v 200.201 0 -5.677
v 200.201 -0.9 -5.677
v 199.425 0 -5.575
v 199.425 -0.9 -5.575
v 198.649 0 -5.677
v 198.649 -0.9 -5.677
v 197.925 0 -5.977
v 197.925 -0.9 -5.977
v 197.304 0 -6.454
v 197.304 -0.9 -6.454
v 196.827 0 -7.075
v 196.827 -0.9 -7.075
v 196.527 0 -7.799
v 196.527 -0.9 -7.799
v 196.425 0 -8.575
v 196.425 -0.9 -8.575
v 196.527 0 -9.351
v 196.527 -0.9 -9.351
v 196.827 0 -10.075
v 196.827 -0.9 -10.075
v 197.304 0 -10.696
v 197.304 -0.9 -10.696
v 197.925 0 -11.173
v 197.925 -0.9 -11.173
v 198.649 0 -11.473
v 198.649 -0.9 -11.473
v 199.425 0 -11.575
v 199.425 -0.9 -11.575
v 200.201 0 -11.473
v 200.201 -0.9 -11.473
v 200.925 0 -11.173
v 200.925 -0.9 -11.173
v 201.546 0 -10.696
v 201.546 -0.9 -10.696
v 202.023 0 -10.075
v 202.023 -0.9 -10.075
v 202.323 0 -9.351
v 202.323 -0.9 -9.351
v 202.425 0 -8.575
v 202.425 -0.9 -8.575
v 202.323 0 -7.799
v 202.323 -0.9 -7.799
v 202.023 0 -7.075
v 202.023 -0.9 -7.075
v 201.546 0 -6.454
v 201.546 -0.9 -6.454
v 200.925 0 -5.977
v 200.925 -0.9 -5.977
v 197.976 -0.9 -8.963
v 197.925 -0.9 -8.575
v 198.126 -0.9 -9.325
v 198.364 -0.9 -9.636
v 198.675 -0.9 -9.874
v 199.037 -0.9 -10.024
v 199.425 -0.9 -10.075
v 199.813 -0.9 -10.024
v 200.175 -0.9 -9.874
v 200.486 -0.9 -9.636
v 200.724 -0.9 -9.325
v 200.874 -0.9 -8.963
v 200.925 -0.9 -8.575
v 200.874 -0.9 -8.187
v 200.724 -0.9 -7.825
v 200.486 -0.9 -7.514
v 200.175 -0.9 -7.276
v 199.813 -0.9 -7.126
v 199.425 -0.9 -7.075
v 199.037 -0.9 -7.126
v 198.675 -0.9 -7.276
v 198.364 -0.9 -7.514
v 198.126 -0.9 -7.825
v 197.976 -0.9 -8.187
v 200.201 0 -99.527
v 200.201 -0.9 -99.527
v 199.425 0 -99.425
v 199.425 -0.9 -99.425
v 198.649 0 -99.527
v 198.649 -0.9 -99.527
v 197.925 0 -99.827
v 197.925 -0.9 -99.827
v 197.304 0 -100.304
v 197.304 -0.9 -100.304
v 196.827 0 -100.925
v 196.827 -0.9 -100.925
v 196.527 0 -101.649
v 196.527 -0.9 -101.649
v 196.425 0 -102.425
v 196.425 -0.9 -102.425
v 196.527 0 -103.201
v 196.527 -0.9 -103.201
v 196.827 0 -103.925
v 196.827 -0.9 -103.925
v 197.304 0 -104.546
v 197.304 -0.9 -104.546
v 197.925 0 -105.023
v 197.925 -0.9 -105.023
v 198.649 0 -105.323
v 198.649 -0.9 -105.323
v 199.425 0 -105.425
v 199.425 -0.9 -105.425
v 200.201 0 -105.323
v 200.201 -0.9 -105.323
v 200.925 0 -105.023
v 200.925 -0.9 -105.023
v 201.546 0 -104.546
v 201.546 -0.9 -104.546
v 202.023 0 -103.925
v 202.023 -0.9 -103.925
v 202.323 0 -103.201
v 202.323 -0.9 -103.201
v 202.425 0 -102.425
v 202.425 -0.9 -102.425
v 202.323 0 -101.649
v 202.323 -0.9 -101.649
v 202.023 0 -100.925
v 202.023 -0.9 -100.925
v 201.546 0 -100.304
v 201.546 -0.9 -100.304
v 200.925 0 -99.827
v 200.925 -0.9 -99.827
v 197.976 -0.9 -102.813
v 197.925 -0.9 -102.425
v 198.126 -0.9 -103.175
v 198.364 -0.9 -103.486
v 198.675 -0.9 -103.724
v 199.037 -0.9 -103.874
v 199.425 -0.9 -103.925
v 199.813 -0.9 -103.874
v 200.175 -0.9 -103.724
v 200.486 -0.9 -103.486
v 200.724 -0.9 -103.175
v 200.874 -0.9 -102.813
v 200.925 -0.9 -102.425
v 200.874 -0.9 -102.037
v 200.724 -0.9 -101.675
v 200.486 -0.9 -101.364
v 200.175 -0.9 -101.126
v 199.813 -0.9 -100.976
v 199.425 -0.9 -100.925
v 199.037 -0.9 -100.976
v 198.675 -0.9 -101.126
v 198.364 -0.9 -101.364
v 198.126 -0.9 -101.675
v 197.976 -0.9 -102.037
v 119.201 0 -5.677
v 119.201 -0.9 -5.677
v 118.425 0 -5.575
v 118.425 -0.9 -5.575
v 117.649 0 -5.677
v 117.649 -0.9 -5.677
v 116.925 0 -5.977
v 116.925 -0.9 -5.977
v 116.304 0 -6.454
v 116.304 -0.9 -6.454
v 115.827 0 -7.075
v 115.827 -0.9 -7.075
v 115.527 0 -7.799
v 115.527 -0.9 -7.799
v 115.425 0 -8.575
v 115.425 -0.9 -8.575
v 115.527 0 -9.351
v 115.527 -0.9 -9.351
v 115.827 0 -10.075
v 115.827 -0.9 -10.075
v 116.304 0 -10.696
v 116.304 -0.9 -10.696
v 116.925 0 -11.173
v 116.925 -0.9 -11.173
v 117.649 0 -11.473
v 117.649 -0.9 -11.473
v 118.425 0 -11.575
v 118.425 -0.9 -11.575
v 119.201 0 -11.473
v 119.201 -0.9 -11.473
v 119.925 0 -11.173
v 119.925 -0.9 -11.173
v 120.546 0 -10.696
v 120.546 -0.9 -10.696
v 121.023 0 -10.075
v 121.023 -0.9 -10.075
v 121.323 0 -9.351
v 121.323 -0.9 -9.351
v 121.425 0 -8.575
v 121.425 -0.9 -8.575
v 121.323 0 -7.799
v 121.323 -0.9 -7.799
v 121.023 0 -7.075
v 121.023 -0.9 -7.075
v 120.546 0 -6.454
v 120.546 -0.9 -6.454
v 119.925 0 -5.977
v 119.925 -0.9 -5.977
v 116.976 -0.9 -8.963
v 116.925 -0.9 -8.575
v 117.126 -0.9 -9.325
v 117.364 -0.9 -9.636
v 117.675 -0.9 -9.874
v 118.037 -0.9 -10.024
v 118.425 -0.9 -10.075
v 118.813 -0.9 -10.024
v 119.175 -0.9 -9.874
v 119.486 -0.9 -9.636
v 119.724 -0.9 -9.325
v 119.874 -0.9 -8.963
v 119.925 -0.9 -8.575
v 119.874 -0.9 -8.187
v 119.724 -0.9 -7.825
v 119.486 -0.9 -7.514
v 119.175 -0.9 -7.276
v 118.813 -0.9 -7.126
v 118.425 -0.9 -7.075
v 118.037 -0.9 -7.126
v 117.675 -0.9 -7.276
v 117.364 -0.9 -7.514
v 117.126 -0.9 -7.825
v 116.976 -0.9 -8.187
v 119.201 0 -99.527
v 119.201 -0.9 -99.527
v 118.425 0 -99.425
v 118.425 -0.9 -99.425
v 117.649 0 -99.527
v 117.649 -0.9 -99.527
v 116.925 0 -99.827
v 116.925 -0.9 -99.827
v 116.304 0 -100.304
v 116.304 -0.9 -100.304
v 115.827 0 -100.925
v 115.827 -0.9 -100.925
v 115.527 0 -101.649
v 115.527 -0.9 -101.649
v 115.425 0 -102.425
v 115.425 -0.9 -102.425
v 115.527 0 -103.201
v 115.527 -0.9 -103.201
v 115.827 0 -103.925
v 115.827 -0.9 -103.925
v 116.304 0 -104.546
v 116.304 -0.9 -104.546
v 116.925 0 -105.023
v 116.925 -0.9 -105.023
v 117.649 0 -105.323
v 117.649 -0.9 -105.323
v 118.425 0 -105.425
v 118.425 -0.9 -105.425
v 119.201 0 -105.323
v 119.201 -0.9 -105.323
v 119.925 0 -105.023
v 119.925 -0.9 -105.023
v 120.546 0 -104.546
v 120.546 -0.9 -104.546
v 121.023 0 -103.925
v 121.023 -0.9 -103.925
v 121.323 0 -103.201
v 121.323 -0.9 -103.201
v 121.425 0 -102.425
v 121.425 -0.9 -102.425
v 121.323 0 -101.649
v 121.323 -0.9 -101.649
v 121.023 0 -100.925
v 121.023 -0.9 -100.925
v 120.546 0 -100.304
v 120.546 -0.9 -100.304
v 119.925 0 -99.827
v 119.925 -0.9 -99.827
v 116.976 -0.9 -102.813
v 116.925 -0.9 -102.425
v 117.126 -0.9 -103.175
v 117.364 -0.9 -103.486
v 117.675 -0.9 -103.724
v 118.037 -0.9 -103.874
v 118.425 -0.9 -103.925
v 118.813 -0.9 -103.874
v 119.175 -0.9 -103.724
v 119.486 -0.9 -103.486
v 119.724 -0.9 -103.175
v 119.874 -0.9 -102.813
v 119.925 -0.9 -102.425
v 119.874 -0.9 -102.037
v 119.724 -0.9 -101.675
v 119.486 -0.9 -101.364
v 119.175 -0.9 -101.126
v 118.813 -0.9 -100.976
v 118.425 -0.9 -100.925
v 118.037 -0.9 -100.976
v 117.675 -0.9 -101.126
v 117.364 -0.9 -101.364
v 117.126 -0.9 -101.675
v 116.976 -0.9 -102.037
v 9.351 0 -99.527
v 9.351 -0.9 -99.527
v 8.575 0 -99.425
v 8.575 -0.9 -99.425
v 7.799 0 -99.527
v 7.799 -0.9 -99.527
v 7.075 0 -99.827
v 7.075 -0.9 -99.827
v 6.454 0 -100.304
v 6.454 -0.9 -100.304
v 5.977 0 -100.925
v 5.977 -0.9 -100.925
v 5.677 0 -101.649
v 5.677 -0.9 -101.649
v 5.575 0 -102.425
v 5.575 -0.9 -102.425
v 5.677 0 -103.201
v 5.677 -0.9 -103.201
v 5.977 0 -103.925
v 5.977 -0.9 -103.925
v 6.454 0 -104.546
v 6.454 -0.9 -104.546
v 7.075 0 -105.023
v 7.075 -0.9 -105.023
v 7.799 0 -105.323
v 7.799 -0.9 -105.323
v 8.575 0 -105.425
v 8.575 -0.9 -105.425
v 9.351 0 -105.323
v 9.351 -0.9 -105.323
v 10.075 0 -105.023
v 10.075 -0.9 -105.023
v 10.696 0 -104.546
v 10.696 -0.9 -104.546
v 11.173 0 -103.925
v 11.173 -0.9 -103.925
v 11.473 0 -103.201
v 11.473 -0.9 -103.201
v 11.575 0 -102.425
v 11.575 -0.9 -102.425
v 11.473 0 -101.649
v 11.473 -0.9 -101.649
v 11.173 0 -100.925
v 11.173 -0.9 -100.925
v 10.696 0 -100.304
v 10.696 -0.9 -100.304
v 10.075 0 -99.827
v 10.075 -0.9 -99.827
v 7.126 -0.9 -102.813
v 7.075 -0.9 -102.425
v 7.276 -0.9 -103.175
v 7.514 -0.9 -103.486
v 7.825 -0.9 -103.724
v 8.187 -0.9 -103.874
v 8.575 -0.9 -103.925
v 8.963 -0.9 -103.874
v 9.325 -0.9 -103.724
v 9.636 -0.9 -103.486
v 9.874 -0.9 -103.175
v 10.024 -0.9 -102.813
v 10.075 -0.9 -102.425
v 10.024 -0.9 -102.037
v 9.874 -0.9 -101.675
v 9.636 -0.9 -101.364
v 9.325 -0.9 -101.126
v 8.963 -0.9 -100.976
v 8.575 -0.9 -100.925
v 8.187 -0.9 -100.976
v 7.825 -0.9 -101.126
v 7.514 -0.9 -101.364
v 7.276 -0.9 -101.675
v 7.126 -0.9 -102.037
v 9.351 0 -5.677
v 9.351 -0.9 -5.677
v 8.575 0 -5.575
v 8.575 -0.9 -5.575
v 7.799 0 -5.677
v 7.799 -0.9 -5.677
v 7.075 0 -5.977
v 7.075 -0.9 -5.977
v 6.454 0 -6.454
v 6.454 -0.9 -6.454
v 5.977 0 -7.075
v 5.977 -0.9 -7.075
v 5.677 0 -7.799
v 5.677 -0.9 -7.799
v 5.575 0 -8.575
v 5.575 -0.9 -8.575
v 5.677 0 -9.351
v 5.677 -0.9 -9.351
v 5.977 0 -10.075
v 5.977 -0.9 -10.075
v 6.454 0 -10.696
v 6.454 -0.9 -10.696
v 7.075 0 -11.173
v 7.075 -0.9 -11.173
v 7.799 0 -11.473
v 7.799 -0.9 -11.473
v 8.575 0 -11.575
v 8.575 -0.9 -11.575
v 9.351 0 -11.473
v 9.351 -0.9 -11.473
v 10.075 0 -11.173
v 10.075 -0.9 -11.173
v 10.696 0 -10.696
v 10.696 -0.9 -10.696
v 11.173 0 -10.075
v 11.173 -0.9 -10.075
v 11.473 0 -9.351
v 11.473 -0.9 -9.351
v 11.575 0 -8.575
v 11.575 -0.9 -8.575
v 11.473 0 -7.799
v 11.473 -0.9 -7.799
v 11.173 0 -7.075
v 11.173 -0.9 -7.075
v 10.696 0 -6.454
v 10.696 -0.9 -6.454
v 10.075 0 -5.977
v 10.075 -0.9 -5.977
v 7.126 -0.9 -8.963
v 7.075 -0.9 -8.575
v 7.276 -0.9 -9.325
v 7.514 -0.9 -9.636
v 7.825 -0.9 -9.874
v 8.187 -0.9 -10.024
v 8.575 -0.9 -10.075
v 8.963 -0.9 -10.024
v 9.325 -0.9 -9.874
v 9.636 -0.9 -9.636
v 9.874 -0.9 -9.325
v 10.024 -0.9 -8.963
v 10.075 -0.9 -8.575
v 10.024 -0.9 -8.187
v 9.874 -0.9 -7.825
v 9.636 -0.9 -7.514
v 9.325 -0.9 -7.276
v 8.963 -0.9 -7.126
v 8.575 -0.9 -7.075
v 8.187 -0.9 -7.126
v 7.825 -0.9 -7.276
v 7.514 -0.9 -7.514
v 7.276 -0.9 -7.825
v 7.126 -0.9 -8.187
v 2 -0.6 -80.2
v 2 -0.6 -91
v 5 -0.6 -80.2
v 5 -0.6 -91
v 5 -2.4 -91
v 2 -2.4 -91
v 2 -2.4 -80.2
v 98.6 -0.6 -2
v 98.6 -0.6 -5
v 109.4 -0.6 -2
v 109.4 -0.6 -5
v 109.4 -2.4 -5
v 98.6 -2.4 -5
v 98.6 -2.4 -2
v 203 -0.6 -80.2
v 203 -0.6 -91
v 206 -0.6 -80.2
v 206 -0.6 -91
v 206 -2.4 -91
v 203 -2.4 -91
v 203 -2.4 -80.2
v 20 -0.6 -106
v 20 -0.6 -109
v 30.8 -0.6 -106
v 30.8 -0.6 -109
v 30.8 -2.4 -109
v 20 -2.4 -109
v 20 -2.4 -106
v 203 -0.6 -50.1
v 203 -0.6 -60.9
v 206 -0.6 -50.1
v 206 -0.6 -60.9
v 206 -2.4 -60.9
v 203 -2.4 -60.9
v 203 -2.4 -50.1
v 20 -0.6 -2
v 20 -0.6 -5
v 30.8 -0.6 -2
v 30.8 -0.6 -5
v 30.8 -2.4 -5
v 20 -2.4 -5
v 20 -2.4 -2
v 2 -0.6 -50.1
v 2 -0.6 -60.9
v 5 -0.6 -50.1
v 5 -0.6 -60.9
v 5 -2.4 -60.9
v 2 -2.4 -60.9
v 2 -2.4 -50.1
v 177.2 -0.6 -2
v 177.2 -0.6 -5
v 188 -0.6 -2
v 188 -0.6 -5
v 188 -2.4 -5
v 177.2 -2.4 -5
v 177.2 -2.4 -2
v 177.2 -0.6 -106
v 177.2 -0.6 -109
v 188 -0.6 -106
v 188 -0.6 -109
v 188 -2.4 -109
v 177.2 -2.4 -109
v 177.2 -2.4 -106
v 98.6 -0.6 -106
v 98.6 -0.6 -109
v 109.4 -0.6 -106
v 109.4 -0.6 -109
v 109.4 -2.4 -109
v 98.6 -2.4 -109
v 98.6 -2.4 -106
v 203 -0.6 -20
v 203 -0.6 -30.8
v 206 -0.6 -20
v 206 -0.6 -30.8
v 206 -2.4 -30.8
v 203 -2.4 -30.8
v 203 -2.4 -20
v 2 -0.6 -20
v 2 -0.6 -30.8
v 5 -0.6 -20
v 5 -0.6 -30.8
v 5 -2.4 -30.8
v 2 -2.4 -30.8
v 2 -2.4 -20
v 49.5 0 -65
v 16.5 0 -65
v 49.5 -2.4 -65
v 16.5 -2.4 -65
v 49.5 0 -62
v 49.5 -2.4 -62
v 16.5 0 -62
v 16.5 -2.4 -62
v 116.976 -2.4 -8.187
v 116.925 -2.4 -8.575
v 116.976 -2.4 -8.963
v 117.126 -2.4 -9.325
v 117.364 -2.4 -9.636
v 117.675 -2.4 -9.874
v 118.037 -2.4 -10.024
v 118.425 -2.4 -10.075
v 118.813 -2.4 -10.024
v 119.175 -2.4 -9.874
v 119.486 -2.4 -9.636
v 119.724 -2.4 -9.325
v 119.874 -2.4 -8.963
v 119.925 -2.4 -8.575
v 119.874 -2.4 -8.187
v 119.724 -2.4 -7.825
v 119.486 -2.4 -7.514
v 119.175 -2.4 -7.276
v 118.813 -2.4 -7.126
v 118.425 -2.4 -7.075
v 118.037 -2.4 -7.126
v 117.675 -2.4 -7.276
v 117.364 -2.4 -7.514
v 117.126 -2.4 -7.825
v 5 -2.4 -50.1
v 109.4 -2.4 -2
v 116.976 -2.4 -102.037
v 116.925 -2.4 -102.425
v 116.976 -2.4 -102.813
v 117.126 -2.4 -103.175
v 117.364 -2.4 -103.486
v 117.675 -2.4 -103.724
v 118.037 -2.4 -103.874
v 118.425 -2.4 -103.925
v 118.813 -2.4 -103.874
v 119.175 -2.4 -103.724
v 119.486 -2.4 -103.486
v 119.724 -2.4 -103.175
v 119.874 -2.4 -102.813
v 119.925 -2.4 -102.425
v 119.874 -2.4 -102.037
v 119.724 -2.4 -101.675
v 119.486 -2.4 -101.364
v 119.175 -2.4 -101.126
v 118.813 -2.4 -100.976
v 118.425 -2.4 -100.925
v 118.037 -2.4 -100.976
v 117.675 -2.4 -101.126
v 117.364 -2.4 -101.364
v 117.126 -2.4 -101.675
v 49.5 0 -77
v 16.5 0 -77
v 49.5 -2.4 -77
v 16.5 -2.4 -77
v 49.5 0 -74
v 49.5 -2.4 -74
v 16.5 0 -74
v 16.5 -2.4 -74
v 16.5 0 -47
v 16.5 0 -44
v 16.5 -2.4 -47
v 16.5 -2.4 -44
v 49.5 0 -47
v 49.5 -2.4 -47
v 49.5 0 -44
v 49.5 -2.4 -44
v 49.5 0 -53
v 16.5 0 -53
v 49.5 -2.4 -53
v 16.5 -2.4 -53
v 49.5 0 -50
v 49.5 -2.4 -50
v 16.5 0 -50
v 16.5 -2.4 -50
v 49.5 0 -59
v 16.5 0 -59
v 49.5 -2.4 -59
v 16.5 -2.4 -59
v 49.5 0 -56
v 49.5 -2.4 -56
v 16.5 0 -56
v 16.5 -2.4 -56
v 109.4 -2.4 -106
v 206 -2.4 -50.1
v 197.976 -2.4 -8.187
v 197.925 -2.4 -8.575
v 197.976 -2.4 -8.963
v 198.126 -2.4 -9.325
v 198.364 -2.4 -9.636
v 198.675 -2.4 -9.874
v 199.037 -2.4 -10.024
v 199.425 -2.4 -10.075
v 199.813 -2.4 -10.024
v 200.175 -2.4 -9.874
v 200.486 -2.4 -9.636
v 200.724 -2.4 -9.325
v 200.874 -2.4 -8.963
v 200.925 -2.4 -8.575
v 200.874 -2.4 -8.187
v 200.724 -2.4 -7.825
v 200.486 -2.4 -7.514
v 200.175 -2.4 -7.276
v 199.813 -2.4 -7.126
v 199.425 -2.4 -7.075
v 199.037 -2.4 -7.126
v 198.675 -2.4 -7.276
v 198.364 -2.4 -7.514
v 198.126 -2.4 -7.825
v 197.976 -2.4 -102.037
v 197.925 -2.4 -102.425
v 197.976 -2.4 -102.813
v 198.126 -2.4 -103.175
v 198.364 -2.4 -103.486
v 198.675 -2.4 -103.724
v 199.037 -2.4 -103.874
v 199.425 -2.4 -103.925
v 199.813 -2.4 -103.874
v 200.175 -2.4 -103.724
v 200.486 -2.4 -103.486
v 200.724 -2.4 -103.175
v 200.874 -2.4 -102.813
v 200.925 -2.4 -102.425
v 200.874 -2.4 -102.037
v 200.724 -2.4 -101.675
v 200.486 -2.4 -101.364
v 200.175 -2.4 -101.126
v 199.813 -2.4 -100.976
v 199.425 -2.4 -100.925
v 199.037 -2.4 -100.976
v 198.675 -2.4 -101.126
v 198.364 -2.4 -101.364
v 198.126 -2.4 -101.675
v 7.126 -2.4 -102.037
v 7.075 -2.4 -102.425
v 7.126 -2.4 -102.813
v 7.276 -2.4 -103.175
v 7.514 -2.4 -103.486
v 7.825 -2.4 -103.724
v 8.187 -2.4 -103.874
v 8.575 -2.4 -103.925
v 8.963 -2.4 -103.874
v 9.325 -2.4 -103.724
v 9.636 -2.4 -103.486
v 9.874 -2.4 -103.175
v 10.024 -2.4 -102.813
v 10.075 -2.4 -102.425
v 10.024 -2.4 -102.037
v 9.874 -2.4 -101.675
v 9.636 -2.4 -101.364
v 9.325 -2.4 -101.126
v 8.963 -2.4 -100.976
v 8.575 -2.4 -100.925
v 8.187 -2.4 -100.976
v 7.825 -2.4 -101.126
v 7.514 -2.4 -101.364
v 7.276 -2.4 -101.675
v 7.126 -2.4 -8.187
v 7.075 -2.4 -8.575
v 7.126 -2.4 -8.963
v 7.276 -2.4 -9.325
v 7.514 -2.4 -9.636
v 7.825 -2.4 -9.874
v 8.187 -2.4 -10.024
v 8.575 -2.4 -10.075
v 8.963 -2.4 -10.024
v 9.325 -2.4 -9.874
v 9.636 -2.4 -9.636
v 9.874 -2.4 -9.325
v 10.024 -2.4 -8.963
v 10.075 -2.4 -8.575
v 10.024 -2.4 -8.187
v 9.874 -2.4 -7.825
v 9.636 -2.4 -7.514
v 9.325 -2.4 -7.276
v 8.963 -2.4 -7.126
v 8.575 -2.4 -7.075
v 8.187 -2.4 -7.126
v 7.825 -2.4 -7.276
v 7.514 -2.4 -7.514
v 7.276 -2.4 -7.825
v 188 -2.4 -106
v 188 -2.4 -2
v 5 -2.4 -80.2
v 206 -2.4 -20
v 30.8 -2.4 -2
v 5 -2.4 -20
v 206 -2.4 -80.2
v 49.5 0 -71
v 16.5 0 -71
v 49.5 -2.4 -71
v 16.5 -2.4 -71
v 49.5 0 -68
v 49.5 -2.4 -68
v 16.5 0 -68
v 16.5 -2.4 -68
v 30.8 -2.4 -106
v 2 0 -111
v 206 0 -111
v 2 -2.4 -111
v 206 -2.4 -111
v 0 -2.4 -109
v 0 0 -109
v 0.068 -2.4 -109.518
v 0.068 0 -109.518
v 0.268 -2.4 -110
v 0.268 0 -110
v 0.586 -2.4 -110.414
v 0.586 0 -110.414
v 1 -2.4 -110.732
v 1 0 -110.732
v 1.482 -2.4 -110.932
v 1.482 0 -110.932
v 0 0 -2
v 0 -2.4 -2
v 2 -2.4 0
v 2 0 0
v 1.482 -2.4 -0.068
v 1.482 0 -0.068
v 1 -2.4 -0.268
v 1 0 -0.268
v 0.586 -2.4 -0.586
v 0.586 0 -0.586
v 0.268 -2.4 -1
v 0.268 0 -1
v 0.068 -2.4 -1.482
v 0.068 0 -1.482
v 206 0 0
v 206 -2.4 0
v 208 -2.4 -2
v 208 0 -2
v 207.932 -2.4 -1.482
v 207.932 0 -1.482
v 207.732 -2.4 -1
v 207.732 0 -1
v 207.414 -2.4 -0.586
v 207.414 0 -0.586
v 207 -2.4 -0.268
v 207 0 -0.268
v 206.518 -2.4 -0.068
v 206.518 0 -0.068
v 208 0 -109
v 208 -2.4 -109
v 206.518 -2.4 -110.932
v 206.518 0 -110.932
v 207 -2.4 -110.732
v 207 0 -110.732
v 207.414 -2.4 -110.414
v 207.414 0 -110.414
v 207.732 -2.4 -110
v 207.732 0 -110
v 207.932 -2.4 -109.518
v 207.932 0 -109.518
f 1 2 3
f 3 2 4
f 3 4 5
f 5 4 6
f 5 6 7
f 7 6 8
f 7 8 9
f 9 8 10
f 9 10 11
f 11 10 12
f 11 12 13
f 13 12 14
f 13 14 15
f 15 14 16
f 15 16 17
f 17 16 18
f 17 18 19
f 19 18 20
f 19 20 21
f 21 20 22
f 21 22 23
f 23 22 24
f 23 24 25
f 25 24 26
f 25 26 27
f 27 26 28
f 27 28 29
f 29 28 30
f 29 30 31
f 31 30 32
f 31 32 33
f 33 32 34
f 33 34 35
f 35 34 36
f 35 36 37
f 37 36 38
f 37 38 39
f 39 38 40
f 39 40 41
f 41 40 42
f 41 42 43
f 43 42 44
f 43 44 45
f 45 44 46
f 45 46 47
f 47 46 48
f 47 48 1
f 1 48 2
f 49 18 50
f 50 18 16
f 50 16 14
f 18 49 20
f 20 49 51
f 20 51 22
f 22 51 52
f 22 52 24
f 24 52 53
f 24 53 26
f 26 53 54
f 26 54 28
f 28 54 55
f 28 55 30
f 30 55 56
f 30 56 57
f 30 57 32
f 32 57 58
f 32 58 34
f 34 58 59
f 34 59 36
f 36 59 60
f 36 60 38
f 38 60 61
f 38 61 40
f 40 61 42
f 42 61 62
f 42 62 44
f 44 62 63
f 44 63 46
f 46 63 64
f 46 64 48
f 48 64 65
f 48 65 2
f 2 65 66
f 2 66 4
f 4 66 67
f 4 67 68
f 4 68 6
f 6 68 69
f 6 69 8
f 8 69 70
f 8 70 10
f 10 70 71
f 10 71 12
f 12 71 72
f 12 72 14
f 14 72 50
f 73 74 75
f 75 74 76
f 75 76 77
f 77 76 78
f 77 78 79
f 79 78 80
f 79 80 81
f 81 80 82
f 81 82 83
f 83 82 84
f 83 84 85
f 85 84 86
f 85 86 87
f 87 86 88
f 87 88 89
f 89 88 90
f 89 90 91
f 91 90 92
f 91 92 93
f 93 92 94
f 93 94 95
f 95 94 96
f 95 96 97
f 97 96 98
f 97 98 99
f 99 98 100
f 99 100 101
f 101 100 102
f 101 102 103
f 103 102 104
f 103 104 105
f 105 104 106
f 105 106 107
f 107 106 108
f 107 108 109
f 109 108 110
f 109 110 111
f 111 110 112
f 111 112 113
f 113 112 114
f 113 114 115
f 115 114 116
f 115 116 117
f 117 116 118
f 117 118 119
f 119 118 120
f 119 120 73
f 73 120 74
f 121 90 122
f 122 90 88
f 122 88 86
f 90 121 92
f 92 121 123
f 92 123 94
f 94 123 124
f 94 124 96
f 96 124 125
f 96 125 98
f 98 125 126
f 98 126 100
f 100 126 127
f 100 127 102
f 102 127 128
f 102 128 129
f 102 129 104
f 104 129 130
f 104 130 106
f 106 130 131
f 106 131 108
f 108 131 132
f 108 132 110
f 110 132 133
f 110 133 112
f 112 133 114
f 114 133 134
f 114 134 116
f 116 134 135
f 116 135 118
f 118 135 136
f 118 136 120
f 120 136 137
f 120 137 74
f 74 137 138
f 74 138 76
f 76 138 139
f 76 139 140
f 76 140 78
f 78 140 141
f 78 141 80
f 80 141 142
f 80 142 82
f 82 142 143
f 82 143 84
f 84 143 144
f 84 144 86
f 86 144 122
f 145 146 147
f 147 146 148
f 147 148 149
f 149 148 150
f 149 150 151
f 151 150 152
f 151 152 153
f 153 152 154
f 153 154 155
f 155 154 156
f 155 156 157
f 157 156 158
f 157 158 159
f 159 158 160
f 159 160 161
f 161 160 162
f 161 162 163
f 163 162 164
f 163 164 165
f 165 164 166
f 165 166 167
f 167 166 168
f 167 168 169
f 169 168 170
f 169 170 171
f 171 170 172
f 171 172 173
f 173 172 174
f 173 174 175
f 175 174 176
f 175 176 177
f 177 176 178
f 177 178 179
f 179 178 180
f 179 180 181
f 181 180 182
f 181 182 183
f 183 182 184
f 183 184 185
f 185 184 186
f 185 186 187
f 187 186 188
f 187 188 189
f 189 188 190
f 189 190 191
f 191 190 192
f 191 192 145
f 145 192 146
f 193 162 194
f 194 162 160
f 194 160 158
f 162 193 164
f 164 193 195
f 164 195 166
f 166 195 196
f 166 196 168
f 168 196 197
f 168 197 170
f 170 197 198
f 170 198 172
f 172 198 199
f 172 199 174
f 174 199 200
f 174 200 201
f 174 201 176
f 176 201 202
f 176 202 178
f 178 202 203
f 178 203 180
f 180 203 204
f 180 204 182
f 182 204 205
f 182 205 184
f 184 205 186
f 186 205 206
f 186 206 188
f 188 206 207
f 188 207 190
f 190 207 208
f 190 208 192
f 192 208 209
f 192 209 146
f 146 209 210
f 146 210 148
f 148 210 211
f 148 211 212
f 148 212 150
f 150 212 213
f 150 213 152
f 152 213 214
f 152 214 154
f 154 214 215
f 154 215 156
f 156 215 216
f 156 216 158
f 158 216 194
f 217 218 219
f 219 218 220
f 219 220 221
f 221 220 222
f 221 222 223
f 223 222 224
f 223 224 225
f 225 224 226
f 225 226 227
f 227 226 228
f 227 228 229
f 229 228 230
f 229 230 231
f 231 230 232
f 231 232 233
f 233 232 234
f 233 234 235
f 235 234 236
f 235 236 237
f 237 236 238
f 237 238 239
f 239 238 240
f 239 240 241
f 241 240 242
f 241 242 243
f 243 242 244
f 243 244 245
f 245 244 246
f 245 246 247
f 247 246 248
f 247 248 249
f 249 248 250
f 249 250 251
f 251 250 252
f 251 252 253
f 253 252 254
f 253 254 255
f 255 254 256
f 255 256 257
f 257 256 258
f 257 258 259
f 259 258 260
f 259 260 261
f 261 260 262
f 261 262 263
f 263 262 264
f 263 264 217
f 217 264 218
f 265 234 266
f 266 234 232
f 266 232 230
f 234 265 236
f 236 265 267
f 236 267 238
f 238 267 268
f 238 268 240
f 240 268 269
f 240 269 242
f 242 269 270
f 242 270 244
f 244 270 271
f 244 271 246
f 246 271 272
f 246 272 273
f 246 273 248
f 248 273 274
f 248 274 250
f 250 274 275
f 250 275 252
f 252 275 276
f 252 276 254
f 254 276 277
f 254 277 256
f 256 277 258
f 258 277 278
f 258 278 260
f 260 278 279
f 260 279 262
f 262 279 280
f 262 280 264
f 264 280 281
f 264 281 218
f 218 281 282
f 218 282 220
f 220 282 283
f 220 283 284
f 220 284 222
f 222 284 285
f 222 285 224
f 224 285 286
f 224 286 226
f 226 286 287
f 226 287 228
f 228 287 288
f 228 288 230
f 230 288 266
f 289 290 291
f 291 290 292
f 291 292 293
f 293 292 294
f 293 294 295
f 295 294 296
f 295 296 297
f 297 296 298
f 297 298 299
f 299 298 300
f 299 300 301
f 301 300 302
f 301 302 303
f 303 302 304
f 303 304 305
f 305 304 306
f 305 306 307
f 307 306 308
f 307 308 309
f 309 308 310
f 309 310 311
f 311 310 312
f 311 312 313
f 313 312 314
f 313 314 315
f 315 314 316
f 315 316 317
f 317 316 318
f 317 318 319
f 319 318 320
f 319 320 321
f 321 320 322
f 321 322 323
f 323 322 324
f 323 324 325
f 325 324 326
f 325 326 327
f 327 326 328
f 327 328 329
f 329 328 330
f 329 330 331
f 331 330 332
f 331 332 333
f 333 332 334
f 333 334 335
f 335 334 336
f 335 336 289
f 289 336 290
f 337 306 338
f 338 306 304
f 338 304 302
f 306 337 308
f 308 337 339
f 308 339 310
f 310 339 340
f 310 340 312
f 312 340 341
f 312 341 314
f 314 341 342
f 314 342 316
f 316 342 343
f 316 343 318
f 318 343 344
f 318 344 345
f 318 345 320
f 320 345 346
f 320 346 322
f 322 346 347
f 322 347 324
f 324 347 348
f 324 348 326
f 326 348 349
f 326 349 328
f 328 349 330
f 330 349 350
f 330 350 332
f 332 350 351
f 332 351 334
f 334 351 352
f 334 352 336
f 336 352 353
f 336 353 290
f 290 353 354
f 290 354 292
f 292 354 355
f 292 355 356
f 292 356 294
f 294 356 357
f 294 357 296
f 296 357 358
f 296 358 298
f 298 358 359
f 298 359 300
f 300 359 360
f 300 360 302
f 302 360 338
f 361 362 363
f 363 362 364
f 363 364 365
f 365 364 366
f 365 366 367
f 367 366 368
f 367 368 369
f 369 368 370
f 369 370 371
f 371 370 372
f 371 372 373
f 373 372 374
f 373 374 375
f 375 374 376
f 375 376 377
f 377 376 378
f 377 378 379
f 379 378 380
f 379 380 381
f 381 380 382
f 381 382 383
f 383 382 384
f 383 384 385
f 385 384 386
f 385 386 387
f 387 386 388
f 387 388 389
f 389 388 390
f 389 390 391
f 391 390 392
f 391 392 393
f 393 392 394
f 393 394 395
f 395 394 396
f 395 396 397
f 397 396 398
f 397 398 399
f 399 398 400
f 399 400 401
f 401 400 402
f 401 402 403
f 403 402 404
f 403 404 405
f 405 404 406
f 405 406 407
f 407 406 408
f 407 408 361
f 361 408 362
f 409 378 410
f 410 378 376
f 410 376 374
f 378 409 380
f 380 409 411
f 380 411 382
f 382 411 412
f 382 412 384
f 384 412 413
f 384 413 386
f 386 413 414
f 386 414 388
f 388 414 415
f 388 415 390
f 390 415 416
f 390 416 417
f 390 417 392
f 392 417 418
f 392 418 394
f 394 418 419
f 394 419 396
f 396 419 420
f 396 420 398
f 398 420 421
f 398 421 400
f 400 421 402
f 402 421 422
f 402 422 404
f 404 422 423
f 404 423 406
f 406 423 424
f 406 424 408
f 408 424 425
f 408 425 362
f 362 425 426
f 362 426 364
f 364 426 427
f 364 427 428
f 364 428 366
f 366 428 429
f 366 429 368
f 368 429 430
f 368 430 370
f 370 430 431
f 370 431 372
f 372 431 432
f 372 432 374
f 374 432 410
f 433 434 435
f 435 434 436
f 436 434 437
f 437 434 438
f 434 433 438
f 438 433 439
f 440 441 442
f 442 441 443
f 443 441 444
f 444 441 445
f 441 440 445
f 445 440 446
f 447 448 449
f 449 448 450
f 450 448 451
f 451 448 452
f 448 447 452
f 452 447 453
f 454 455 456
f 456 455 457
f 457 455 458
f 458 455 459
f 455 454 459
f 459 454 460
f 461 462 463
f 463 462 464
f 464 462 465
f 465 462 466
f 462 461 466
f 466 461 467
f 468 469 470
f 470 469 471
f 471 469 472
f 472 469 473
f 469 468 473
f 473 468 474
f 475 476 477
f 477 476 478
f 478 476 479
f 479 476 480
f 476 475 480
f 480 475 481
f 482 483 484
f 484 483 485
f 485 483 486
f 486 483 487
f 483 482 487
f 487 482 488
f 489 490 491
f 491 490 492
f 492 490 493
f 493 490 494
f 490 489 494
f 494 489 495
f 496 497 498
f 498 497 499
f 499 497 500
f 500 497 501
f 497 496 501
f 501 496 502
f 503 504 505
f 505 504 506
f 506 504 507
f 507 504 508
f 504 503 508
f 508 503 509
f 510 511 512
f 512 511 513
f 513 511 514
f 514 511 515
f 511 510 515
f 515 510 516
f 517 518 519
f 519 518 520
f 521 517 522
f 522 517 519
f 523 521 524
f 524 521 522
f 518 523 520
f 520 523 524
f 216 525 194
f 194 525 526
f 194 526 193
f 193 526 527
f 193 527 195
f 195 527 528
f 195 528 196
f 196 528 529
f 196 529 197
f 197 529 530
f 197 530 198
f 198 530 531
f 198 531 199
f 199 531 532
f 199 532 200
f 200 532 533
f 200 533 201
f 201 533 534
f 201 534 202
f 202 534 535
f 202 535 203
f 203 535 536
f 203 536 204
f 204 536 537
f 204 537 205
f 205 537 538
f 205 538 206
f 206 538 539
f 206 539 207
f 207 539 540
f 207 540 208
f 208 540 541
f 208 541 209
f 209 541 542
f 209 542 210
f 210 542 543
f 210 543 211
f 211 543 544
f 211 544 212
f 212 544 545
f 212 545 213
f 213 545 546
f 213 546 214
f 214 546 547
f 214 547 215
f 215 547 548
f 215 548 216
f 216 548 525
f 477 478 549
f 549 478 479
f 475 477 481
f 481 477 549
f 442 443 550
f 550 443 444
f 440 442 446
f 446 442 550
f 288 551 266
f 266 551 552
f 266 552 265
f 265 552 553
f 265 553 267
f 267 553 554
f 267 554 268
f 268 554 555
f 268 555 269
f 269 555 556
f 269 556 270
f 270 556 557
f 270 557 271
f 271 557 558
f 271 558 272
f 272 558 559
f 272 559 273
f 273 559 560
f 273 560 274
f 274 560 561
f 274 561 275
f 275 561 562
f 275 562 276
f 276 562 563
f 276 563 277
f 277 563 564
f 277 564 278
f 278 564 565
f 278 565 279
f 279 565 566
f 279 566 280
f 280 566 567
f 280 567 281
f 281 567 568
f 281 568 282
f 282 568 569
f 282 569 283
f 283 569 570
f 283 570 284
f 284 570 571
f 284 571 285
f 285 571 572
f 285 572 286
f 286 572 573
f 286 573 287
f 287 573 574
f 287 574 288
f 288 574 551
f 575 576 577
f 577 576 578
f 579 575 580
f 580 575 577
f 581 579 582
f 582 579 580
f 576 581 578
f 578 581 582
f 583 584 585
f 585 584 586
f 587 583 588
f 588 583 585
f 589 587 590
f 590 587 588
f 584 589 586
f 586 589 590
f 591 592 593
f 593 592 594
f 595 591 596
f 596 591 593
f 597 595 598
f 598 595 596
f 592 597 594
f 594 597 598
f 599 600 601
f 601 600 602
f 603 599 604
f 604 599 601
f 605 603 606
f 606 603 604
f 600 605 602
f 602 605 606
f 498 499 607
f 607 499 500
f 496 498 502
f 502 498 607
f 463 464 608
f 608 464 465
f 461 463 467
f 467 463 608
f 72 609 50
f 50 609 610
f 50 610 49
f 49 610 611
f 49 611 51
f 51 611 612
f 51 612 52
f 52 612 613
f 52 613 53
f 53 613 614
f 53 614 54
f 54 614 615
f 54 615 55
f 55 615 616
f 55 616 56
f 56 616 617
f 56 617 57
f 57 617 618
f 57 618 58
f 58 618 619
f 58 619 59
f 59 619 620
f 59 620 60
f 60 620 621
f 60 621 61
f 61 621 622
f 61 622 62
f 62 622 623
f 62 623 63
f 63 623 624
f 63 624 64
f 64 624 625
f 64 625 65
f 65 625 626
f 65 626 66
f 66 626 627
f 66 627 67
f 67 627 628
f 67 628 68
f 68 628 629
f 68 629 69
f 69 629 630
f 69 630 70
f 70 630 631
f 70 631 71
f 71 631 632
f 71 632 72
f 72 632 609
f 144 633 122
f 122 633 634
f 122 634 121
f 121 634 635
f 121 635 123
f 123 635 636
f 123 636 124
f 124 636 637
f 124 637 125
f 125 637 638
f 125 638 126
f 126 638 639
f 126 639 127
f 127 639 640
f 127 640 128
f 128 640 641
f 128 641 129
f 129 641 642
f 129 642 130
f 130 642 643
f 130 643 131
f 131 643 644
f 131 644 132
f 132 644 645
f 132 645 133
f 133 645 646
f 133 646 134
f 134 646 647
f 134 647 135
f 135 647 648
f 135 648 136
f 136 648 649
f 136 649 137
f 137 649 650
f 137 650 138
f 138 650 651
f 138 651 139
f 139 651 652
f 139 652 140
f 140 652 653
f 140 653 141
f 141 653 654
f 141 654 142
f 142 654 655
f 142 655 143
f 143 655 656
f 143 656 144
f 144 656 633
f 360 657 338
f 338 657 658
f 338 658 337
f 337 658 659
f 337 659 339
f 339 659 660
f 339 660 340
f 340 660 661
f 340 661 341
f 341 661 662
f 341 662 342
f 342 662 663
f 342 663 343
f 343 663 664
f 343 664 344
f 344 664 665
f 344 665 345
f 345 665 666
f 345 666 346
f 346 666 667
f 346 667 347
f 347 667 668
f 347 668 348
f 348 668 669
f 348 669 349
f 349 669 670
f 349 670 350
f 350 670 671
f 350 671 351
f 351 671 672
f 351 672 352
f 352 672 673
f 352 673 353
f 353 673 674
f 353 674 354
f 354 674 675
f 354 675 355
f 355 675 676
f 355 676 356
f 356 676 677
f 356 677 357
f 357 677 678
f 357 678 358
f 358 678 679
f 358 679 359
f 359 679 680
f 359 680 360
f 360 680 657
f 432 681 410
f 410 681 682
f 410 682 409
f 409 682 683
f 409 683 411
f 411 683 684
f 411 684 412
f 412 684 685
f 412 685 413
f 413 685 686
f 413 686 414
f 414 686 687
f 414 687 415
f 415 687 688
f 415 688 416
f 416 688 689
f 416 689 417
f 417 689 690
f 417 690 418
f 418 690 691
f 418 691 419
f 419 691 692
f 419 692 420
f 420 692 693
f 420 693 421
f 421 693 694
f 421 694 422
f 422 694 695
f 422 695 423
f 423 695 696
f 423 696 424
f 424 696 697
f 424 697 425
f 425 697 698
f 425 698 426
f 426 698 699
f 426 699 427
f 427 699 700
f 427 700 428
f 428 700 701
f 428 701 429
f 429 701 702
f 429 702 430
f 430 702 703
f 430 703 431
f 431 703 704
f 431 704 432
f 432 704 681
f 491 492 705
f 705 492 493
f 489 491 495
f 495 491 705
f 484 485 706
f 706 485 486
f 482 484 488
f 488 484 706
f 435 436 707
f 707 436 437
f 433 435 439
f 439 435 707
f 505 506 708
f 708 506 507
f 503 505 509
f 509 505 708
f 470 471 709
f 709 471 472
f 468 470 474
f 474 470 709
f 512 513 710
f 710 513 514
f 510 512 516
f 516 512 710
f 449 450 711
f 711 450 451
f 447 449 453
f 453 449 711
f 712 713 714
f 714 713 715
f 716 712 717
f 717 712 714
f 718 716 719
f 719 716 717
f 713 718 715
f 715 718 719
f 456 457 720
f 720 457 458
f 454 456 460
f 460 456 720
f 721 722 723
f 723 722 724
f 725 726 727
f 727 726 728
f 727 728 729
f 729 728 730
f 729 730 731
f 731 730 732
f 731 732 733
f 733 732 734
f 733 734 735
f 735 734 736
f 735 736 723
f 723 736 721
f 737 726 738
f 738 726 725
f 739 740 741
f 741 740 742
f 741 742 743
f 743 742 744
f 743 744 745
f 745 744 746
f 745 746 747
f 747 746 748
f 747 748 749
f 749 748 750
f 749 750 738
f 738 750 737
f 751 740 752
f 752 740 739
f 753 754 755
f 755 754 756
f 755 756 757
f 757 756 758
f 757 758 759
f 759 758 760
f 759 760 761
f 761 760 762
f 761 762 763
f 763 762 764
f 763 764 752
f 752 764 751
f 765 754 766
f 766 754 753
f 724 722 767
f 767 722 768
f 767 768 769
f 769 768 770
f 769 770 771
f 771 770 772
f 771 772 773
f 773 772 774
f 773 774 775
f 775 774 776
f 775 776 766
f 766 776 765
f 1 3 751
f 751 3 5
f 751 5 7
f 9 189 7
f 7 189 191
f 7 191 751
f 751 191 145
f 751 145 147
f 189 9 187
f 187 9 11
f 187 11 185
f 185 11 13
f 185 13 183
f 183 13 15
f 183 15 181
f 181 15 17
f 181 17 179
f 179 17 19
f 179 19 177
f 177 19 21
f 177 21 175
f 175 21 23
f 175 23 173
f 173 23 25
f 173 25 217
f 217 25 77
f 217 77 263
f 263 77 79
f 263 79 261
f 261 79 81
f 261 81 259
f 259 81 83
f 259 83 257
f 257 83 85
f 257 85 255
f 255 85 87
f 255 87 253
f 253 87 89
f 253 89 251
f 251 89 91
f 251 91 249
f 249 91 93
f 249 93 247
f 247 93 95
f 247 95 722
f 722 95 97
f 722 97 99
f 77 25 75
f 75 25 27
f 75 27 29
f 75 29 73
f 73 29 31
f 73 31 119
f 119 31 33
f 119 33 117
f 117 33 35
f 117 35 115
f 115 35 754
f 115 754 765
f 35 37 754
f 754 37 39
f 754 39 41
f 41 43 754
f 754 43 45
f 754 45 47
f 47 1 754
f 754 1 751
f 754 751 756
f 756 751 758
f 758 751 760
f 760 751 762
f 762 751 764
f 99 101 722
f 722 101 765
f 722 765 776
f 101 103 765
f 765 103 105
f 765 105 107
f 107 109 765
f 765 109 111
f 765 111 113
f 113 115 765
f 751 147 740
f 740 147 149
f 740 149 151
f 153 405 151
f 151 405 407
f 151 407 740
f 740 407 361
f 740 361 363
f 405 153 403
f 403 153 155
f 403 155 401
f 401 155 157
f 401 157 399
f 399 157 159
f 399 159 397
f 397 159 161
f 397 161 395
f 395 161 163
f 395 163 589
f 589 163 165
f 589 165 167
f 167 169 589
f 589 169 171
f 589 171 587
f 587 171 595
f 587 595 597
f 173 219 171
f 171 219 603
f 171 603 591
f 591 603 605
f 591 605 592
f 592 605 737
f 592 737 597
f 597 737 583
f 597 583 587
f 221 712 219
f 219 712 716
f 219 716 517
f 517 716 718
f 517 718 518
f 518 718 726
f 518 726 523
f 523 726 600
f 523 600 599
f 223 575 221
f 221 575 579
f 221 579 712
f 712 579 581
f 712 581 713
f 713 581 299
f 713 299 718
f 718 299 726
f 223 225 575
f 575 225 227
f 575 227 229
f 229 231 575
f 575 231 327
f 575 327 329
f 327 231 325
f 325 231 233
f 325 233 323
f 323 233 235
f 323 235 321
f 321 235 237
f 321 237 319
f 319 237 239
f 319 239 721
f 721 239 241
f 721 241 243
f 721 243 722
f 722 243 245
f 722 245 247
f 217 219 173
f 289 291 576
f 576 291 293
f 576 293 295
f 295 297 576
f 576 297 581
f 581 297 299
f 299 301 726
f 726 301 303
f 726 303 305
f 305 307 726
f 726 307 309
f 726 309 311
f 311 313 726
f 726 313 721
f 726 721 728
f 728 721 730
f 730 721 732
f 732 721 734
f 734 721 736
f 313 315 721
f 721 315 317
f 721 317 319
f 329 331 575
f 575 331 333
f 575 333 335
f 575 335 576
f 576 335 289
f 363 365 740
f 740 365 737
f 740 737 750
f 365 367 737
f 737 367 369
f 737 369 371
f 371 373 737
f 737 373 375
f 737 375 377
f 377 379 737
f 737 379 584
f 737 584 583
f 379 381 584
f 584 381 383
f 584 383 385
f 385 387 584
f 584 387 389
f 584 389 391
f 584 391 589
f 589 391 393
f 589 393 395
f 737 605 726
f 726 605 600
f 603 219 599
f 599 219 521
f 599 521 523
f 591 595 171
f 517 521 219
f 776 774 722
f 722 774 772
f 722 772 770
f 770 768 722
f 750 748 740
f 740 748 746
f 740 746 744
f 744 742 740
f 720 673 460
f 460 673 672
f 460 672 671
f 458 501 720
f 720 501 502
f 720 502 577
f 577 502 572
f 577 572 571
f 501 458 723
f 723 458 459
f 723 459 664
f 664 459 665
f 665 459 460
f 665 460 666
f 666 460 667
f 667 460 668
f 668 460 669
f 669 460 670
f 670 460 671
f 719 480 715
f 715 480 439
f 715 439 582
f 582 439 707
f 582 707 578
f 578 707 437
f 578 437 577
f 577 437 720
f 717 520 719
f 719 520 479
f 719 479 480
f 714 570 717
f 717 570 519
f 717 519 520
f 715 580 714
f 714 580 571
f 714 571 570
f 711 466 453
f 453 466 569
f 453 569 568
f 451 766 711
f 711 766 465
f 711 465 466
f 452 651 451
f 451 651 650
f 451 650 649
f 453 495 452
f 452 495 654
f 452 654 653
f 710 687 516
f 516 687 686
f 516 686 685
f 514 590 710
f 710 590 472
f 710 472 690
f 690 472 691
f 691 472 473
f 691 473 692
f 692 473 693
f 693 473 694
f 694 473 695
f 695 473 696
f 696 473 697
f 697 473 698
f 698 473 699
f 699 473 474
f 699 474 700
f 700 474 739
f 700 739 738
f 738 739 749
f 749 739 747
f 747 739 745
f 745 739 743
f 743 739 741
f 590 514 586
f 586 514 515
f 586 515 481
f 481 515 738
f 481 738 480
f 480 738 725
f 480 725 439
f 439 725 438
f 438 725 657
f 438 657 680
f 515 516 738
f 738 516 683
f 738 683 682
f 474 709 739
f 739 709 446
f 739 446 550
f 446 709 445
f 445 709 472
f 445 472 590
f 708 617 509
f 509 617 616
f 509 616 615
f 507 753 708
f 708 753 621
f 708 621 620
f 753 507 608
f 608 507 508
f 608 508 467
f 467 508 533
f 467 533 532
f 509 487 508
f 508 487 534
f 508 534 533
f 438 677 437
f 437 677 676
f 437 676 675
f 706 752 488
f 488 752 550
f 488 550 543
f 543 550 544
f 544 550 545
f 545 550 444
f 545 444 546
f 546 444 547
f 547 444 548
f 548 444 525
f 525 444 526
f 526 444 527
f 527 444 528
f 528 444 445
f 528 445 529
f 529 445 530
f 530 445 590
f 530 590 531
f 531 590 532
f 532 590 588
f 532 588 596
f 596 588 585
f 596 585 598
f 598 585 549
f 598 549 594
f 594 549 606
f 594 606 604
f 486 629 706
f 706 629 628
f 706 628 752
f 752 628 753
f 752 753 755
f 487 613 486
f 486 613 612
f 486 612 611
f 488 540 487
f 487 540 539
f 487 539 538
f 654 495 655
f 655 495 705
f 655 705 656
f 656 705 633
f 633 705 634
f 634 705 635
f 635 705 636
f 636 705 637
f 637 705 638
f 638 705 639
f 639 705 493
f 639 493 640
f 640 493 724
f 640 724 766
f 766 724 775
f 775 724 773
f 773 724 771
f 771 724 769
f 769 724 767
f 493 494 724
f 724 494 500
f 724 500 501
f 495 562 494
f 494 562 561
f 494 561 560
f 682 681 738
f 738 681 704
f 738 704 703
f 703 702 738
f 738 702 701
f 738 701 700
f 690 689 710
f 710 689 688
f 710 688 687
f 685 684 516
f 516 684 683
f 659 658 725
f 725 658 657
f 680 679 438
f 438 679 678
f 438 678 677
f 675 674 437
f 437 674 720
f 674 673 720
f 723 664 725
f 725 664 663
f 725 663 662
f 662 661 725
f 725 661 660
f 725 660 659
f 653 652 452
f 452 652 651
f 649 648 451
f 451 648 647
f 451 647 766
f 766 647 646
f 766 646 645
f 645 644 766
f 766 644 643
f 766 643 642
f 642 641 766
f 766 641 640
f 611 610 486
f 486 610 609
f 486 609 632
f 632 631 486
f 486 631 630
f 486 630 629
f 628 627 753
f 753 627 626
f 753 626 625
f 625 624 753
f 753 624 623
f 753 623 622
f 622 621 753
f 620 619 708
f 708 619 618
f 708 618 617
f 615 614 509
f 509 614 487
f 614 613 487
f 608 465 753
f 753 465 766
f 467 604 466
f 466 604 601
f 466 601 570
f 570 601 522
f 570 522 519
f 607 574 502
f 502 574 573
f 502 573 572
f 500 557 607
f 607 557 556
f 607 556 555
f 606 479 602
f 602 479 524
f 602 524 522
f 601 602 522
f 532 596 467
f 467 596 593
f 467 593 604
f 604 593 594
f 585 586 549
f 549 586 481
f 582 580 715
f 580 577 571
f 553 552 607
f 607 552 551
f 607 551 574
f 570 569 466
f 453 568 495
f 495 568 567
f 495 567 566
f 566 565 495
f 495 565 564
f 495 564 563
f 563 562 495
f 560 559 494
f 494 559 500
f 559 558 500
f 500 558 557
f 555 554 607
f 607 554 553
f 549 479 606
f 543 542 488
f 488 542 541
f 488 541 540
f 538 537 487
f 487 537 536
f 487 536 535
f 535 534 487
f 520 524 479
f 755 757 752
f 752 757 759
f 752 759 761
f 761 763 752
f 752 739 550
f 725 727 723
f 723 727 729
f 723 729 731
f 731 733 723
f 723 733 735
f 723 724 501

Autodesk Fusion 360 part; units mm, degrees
sketch "Skizze1" plane through (0, 0, 0) normal (0, 1, 0) x (1, 0, 0)
  line L0 (2, 0) -> (206, 0)
  line L1 (208, 2) -> (208, 109)
  line L2 (206, 111) -> (2, 111)
  line L3 (0, 109) -> (0, 2)
  circle A0 centre (8.575, 8.575) radius 1.5
  circle A1 centre (8.575, 102.425) radius 1.5
  circle A2 centre (199.425, 102.425) radius 1.5
  circle A3 centre (199.425, 8.575) radius 1.5
  line L4 (166.2, 106) -> (162.8, 106)
  line L5 (192, 106) -> (195.4, 106)
  line L6 (195.4, 89) -> (192, 89)
  line L7 (192, 68) -> (192, 76.4)
  line L8 (192, 76.4) -> (192, 71.4)
  line L9 (16.5, 77) -> (49.5, 77)
  line L10 (49.5, 77) -> (49.5, 44)
  line L11 (49.5, 44) -> (16.5, 44)
  line L12 (16.5, 44) -> (16.5, 77)
  line L13 (16.5, 77) -> (49.5, 77)
  line L14 (49.5, 77) -> (49.5, 74)
  line L15 (49.5, 74) -> (16.5, 74)
  line L16 (16.5, 74) -> (16.5, 77)
  line L17 (16.5, 74) -> (49.5, 74)
  line L18 (49.5, 74) -> (49.5, 71)
  line L19 (49.5, 71) -> (16.5, 71)
  line L20 (16.5, 71) -> (16.5, 74)
  line L21 (16.5, 71) -> (49.5, 71)
  line L22 (49.5, 71) -> (49.5, 68)
  line L23 (49.5, 68) -> (16.5, 68)
  line L24 (16.5, 68) -> (16.5, 71)
  line L25 (16.5, 68) -> (49.5, 68)
  line L26 (49.5, 68) -> (49.5, 65)
  line L27 (49.5, 65) -> (16.5, 65)
  line L28 (16.5, 65) -> (16.5, 68)
  line L29 (16.5, 65) -> (49.5, 65)
  line L30 (49.5, 65) -> (49.5, 62)
  line L31 (49.5, 62) -> (16.5, 62)
  line L32 (16.5, 62) -> (16.5, 65)
  line L33 (16.5, 62) -> (49.5, 62)
  line L34 (49.5, 62) -> (49.5, 59)
  line L35 (49.5, 59) -> (16.5, 59)
  line L36 (16.5, 59) -> (16.5, 62)
  line L37 (16.5, 59) -> (49.5, 59)
  line L38 (49.5, 59) -> (49.5, 56)
  line L39 (49.5, 56) -> (16.5, 56)
  line L40 (16.5, 56) -> (16.5, 59)
  line L41 (16.5, 56) -> (49.5, 56)
  line L42 (49.5, 56) -> (49.5, 53)
  line L43 (49.5, 53) -> (16.5, 53)
  line L44 (16.5, 53) -> (16.5, 56)
  line L45 (16.5, 53) -> (49.5, 53)
  line L46 (49.5, 53) -> (49.5, 50)
  line L47 (49.5, 50) -> (16.5, 50)
  line L48 (16.5, 50) -> (16.5, 53)
  line L49 (16.5, 50) -> (49.5, 50)
  line L50 (49.5, 50) -> (49.5, 47)
  line L51 (49.5, 47) -> (16.5, 47)
  line L52 (16.5, 47) -> (16.5, 50)
  line L53 (16.5, 47) -> (49.5, 47)
  line L54 (49.5, 47) -> (49.5, 44)
  line L55 (49.5, 44) -> (16.5, 44)
  line L56 (16.5, 44) -> (16.5, 47)
  line L57 (20, 109) -> (30.8, 109)
  line L58 (30.8, 109) -> (30.8, 106)
  line L59 (30.8, 106) -> (20, 106)
  line L60 (20, 106) -> (20, 109)
  line L61 (2, 91) -> (5, 91)
  line L62 (5, 91) -> (5, 80.2)
  line L63 (5, 80.2) -> (2, 80.2)
  line L64 (2, 80.2) -> (2, 91)
  line L65 (2, 30.8) -> (5, 30.8)
  line L66 (5, 30.8) -> (5, 20)
  line L67 (5, 20) -> (2, 20)
  line L68 (2, 20) -> (2, 30.8)
  line L69 (20, 5) -> (30.8, 5)
  line L70 (30.8, 5) -> (30.8, 2)
  line L71 (30.8, 2) -> (20, 2)
  line L72 (20, 2) -> (20, 5)
  line L73 (177.2, 5) -> (188, 5)
  line L74 (188, 5) -> (188, 2)
  line L75 (188, 2) -> (177.2, 2)
  line L76 (177.2, 2) -> (177.2, 5)
  line L77 (203, 30.8) -> (206, 30.8)
  line L78 (206, 30.8) -> (206, 20)
  line L79 (206, 20) -> (203, 20)
  line L80 (203, 20) -> (203, 30.8)
  line L81 (177.2, 109) -> (188, 109)
  line L82 (188, 109) -> (188, 106)
  line L83 (188, 106) -> (177.2, 106)
  line L84 (177.2, 106) -> (177.2, 109)
  line L85 (203, 91) -> (206, 91)
  line L86 (206, 91) -> (206, 80.2)
  line L87 (206, 80.2) -> (203, 80.2)
  line L88 (203, 80.2) -> (203, 91)
  line L89 (98.6, 5) -> (109.4, 5)
  line L90 (109.4, 5) -> (109.4, 2)
  line L91 (109.4, 2) -> (98.6, 2)
  line L92 (98.6, 2) -> (98.6, 5)
  line L93 (98.6, 109) -> (109.4, 109)
  line L94 (109.4, 109) -> (109.4, 106)
  line L95 (109.4, 106) -> (98.6, 106)
  line L96 (98.6, 106) -> (98.6, 109)
  line L97 (203, 60.9) -> (206, 60.9)
  line L98 (206, 60.9) -> (206, 50.1)
  line L99 (206, 50.1) -> (203, 50.1)
  line L100 (203, 50.1) -> (203, 60.9)
  line L101 (2, 60.9) -> (5, 60.9)
  line L102 (5, 60.9) -> (5, 50.1)
  line L103 (5, 50.1) -> (2, 50.1)
  line L104 (2, 50.1) -> (2, 60.9)
  arc A4 (2, 111) -> (0, 109) centre (2, 109) ccw
  arc A5 (0, 2) -> (2, 0) centre (2, 2) ccw
  arc A6 (206, 0) -> (208, 2) centre (206, 2) ccw
  arc A7 (208, 109) -> (206, 111) centre (206, 109) ccw
  circle A8 centre (118.425, 8.575) radius 1.5
  circle A9 centre (118.425, 102.425) radius 1.5
  point P0 (208, 0)
  point P1 (0, 111)
  dimension "d1" = 208
  dimension "d2" = 111
  dimension "d3" = 3
  dimension "d4" = 8.575
  dimension "d5" = 8.575
  dimension "d6" = 3
  dimension "d7" = 8.575
  dimension "d8" = 8.575
  dimension "d9" = 3
  dimension "d10" = 8.575
  dimension "d11" = 8.575
  dimension "d12" = 3
  dimension "d13" = 8.575
  dimension "d14" = 8.575
  dimension "d44" = 25.8
  dimension "d48" = 3.4
  dimension "d49" = 3.4
  dimension "d50" = 17
  dimension "d60" = 33
  dimension "d61" = 33
  dimension "d62" = 34
  dimension "d63" = 16.5
  dimension "d64" = 3
  dimension "d65" = 33
  dimension "d66" = 3
  dimension "d67" = 3
  dimension "d68" = 3
  dimension "d69" = 3
  dimension "d70" = 3
  dimension "d71" = 3
  dimension "d72" = 3
  dimension "d73" = 3
  dimension "d74" = 3
  dimension "d75" = 10.8
  dimension "d76" = 3
  dimension "d77" = 20
  dimension "d78" = 2
  dimension "d79" = 3
  dimension "d80" = 10.8
  dimension "d81" = 2
  dimension "d82" = 20
  dimension "d83" = 3
  dimension "d84" = 10.8
  dimension "d85" = 2
  dimension "d86" = 20
  dimension "d87" = 10.8
  dimension "d88" = 3
  dimension "d89" = 2
  dimension "d90" = 20
  dimension "d91" = 10.8
  dimension "d92" = 3
  dimension "d93" = 2
  dimension "d94" = 20
  dimension "d95" = 3
  dimension "d96" = 10.8
  dimension "d97" = 2
  dimension "d98" = 20
  dimension "d99" = 10.8
  dimension "d100" = 3
  dimension "d101" = 2
  dimension "d102" = 20
  dimension "d103" = 3
  dimension "d104" = 10.8
  dimension "d105" = 2
  dimension "d106" = 20
  dimension "d107" = 10.8
  dimension "d108" = 3
  dimension "d109" = 2
  dimension "d110" = 98.6
  dimension "d111" = 10.8
  dimension "d112" = 3
  dimension "d113" = 2
  dimension "d114" = 98.6
  dimension "d115" = 3
  dimension "d116" = 10.8
  dimension "d117" = 2
  dimension "d118" = 50.1
  dimension "d119" = 3
  dimension "d120" = 10.8
  dimension "d121" = 2
  dimension "d122" = 50.1
  dimension "d123" = 2
  dimension "d124" = 2
  dimension "d125" = 2
  dimension "d126" = 2
  dimension "d160" = 3
  dimension "d161" = 109.85
  dimension "d162" = 8.575
  dimension "d163" = 3
  dimension "d164" = 8.575
  dimension "d165" = 109.85
extrude "Extrusion11" add sketch "Skizze1" against normal blind 2.4 contours L0 L1 L2 L3 A4 A5 A6 A7 | L10 L12 L15 L17 L18 L19 L20 L21 | L10 L12 L23 L25 L26 L27 L28 L29 | L10 L12 L31 L33 L34 L35 L36 L37 | L10 L12 L39 L41 L42 L43 L44 L45 | L10 L12 L47 L49 L50 L51 L52 L53
extrude "Extrusion12" add sketch "Skizze1" against normal blind 0.6 contours L57 L58 L59 L60 | L61 L62 L63 L64 | L65 L66 L67 L68 | L69 L70 L71 L72 | L73 L74 L75 L76 | L77 L78 L79 L80 | L81 L82 L83 L84 | L85 L86 L87 L88 | L89 L90 L91 L92 | L93 L94 L95 L96 | L97 L98 L99 L100 | L101 L102 L103 L104
hole "Bohrung5" at (8.575, 0, -8.575) direction (0, -1, 0) diameter 6 depth 0.9 tip angle 180
hole "Bohrung6" at (8.575, 0, -102.425) direction (0, -1, 0) diameter 6 depth 0.9 tip angle 180
hole "Bohrung7" at (118.425, 0, -102.425) direction (0, -1, 0) diameter 6 depth 0.9 tip angle 180
hole "Bohrung8" at (118.425, 0, -8.575) direction (0, -1, 0) diameter 6 depth 0.9 tip angle 180
hole "Bohrung9" at (199.425, 0, -102.425) direction (0, -1, 0) diameter 6 depth 0.9 tip angle 180
hole "Bohrung10" at (199.425, 0, -8.575) direction (0, -1, 0) diameter 6 depth 0.9 tip angle 180
